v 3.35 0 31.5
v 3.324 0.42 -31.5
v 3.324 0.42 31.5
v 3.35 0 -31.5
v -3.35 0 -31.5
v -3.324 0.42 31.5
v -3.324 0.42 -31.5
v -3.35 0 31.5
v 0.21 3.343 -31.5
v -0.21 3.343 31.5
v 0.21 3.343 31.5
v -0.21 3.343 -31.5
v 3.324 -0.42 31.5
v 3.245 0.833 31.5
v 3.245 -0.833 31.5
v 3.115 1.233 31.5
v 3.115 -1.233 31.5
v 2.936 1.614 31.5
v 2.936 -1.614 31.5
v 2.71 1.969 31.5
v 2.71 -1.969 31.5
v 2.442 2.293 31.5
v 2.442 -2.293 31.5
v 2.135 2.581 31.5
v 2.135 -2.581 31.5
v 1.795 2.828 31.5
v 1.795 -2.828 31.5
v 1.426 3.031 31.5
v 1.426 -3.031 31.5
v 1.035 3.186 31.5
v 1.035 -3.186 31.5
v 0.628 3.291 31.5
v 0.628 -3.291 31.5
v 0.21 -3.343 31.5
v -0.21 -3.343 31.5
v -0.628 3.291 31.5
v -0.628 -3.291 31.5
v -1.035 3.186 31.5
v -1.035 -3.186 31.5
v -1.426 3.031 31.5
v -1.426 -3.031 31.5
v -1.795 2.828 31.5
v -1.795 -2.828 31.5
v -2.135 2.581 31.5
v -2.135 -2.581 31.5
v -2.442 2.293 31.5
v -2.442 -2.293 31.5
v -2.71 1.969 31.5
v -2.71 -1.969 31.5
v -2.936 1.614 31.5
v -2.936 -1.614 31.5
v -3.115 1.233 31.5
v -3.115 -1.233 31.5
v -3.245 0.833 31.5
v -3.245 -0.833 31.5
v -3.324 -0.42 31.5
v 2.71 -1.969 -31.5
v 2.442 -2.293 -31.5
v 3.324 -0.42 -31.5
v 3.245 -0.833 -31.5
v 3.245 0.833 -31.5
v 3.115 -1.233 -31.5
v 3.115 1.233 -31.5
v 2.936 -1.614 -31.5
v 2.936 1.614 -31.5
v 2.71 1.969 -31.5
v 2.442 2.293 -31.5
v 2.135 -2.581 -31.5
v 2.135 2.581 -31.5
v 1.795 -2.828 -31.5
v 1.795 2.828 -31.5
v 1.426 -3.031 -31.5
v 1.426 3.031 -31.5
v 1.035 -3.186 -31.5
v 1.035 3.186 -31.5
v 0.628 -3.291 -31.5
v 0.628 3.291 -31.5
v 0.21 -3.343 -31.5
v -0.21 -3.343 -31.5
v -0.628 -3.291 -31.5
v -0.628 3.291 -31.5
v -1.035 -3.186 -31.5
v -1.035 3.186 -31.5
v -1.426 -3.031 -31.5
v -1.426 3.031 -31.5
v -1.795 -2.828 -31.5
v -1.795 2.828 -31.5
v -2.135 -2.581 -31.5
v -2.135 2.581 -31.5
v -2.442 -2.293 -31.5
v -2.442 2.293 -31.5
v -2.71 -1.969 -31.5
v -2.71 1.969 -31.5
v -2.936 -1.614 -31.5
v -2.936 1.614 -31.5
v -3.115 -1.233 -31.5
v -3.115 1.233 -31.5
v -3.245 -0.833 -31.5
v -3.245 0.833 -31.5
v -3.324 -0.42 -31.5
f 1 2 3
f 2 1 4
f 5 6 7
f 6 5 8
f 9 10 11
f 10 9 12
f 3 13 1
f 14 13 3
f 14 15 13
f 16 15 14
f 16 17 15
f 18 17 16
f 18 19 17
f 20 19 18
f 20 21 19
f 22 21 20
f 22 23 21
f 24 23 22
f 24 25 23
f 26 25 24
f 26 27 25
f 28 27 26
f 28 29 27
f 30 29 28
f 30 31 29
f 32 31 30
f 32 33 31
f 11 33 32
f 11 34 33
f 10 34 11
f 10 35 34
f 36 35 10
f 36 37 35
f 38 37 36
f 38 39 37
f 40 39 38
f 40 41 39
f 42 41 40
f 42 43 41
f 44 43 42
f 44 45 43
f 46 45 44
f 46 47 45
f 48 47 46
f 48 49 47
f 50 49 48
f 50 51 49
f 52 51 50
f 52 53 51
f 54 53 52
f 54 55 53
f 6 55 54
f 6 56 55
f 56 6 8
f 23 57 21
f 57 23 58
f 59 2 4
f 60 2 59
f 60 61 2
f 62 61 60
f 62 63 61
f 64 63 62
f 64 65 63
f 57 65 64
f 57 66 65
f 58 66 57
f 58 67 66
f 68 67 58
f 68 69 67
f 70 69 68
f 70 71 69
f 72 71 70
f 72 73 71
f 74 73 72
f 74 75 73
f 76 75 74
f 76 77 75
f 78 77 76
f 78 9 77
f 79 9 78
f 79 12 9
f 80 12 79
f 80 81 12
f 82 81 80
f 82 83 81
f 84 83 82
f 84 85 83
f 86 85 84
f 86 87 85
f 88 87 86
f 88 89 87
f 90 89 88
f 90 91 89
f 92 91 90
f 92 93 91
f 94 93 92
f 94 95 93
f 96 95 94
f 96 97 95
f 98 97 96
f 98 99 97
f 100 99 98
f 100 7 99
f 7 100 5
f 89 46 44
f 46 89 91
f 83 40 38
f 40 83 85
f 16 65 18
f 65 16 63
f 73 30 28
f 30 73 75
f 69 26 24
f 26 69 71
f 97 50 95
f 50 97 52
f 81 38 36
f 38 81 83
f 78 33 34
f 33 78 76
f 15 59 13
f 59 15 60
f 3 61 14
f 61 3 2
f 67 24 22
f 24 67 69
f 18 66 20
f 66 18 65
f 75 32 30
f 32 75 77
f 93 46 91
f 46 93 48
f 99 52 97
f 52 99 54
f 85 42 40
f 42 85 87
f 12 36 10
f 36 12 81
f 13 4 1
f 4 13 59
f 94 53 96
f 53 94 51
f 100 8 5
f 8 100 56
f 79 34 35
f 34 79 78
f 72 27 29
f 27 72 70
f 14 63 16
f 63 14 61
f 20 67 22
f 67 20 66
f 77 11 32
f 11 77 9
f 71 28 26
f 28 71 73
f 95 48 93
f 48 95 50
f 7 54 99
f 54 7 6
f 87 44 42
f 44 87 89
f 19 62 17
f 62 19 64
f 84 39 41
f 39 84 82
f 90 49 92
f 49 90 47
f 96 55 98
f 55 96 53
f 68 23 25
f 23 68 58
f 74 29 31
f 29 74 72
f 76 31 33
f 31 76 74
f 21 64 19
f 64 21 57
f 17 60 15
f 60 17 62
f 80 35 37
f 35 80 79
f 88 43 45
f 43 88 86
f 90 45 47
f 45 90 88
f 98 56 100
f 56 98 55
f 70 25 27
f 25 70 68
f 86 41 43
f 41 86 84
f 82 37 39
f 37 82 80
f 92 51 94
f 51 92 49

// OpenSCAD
$fn = 50;


difference() {
	union() {
		translate(v = [0, 0, -31.5000000000]) {
			cylinder(h = 63, r = 3.3500000000);
		}
	}
	union() {
		translate(v = [0, 0, -100.0000000000]) {
			cylinder(h = 200, r = 0);
		}
	}
}
